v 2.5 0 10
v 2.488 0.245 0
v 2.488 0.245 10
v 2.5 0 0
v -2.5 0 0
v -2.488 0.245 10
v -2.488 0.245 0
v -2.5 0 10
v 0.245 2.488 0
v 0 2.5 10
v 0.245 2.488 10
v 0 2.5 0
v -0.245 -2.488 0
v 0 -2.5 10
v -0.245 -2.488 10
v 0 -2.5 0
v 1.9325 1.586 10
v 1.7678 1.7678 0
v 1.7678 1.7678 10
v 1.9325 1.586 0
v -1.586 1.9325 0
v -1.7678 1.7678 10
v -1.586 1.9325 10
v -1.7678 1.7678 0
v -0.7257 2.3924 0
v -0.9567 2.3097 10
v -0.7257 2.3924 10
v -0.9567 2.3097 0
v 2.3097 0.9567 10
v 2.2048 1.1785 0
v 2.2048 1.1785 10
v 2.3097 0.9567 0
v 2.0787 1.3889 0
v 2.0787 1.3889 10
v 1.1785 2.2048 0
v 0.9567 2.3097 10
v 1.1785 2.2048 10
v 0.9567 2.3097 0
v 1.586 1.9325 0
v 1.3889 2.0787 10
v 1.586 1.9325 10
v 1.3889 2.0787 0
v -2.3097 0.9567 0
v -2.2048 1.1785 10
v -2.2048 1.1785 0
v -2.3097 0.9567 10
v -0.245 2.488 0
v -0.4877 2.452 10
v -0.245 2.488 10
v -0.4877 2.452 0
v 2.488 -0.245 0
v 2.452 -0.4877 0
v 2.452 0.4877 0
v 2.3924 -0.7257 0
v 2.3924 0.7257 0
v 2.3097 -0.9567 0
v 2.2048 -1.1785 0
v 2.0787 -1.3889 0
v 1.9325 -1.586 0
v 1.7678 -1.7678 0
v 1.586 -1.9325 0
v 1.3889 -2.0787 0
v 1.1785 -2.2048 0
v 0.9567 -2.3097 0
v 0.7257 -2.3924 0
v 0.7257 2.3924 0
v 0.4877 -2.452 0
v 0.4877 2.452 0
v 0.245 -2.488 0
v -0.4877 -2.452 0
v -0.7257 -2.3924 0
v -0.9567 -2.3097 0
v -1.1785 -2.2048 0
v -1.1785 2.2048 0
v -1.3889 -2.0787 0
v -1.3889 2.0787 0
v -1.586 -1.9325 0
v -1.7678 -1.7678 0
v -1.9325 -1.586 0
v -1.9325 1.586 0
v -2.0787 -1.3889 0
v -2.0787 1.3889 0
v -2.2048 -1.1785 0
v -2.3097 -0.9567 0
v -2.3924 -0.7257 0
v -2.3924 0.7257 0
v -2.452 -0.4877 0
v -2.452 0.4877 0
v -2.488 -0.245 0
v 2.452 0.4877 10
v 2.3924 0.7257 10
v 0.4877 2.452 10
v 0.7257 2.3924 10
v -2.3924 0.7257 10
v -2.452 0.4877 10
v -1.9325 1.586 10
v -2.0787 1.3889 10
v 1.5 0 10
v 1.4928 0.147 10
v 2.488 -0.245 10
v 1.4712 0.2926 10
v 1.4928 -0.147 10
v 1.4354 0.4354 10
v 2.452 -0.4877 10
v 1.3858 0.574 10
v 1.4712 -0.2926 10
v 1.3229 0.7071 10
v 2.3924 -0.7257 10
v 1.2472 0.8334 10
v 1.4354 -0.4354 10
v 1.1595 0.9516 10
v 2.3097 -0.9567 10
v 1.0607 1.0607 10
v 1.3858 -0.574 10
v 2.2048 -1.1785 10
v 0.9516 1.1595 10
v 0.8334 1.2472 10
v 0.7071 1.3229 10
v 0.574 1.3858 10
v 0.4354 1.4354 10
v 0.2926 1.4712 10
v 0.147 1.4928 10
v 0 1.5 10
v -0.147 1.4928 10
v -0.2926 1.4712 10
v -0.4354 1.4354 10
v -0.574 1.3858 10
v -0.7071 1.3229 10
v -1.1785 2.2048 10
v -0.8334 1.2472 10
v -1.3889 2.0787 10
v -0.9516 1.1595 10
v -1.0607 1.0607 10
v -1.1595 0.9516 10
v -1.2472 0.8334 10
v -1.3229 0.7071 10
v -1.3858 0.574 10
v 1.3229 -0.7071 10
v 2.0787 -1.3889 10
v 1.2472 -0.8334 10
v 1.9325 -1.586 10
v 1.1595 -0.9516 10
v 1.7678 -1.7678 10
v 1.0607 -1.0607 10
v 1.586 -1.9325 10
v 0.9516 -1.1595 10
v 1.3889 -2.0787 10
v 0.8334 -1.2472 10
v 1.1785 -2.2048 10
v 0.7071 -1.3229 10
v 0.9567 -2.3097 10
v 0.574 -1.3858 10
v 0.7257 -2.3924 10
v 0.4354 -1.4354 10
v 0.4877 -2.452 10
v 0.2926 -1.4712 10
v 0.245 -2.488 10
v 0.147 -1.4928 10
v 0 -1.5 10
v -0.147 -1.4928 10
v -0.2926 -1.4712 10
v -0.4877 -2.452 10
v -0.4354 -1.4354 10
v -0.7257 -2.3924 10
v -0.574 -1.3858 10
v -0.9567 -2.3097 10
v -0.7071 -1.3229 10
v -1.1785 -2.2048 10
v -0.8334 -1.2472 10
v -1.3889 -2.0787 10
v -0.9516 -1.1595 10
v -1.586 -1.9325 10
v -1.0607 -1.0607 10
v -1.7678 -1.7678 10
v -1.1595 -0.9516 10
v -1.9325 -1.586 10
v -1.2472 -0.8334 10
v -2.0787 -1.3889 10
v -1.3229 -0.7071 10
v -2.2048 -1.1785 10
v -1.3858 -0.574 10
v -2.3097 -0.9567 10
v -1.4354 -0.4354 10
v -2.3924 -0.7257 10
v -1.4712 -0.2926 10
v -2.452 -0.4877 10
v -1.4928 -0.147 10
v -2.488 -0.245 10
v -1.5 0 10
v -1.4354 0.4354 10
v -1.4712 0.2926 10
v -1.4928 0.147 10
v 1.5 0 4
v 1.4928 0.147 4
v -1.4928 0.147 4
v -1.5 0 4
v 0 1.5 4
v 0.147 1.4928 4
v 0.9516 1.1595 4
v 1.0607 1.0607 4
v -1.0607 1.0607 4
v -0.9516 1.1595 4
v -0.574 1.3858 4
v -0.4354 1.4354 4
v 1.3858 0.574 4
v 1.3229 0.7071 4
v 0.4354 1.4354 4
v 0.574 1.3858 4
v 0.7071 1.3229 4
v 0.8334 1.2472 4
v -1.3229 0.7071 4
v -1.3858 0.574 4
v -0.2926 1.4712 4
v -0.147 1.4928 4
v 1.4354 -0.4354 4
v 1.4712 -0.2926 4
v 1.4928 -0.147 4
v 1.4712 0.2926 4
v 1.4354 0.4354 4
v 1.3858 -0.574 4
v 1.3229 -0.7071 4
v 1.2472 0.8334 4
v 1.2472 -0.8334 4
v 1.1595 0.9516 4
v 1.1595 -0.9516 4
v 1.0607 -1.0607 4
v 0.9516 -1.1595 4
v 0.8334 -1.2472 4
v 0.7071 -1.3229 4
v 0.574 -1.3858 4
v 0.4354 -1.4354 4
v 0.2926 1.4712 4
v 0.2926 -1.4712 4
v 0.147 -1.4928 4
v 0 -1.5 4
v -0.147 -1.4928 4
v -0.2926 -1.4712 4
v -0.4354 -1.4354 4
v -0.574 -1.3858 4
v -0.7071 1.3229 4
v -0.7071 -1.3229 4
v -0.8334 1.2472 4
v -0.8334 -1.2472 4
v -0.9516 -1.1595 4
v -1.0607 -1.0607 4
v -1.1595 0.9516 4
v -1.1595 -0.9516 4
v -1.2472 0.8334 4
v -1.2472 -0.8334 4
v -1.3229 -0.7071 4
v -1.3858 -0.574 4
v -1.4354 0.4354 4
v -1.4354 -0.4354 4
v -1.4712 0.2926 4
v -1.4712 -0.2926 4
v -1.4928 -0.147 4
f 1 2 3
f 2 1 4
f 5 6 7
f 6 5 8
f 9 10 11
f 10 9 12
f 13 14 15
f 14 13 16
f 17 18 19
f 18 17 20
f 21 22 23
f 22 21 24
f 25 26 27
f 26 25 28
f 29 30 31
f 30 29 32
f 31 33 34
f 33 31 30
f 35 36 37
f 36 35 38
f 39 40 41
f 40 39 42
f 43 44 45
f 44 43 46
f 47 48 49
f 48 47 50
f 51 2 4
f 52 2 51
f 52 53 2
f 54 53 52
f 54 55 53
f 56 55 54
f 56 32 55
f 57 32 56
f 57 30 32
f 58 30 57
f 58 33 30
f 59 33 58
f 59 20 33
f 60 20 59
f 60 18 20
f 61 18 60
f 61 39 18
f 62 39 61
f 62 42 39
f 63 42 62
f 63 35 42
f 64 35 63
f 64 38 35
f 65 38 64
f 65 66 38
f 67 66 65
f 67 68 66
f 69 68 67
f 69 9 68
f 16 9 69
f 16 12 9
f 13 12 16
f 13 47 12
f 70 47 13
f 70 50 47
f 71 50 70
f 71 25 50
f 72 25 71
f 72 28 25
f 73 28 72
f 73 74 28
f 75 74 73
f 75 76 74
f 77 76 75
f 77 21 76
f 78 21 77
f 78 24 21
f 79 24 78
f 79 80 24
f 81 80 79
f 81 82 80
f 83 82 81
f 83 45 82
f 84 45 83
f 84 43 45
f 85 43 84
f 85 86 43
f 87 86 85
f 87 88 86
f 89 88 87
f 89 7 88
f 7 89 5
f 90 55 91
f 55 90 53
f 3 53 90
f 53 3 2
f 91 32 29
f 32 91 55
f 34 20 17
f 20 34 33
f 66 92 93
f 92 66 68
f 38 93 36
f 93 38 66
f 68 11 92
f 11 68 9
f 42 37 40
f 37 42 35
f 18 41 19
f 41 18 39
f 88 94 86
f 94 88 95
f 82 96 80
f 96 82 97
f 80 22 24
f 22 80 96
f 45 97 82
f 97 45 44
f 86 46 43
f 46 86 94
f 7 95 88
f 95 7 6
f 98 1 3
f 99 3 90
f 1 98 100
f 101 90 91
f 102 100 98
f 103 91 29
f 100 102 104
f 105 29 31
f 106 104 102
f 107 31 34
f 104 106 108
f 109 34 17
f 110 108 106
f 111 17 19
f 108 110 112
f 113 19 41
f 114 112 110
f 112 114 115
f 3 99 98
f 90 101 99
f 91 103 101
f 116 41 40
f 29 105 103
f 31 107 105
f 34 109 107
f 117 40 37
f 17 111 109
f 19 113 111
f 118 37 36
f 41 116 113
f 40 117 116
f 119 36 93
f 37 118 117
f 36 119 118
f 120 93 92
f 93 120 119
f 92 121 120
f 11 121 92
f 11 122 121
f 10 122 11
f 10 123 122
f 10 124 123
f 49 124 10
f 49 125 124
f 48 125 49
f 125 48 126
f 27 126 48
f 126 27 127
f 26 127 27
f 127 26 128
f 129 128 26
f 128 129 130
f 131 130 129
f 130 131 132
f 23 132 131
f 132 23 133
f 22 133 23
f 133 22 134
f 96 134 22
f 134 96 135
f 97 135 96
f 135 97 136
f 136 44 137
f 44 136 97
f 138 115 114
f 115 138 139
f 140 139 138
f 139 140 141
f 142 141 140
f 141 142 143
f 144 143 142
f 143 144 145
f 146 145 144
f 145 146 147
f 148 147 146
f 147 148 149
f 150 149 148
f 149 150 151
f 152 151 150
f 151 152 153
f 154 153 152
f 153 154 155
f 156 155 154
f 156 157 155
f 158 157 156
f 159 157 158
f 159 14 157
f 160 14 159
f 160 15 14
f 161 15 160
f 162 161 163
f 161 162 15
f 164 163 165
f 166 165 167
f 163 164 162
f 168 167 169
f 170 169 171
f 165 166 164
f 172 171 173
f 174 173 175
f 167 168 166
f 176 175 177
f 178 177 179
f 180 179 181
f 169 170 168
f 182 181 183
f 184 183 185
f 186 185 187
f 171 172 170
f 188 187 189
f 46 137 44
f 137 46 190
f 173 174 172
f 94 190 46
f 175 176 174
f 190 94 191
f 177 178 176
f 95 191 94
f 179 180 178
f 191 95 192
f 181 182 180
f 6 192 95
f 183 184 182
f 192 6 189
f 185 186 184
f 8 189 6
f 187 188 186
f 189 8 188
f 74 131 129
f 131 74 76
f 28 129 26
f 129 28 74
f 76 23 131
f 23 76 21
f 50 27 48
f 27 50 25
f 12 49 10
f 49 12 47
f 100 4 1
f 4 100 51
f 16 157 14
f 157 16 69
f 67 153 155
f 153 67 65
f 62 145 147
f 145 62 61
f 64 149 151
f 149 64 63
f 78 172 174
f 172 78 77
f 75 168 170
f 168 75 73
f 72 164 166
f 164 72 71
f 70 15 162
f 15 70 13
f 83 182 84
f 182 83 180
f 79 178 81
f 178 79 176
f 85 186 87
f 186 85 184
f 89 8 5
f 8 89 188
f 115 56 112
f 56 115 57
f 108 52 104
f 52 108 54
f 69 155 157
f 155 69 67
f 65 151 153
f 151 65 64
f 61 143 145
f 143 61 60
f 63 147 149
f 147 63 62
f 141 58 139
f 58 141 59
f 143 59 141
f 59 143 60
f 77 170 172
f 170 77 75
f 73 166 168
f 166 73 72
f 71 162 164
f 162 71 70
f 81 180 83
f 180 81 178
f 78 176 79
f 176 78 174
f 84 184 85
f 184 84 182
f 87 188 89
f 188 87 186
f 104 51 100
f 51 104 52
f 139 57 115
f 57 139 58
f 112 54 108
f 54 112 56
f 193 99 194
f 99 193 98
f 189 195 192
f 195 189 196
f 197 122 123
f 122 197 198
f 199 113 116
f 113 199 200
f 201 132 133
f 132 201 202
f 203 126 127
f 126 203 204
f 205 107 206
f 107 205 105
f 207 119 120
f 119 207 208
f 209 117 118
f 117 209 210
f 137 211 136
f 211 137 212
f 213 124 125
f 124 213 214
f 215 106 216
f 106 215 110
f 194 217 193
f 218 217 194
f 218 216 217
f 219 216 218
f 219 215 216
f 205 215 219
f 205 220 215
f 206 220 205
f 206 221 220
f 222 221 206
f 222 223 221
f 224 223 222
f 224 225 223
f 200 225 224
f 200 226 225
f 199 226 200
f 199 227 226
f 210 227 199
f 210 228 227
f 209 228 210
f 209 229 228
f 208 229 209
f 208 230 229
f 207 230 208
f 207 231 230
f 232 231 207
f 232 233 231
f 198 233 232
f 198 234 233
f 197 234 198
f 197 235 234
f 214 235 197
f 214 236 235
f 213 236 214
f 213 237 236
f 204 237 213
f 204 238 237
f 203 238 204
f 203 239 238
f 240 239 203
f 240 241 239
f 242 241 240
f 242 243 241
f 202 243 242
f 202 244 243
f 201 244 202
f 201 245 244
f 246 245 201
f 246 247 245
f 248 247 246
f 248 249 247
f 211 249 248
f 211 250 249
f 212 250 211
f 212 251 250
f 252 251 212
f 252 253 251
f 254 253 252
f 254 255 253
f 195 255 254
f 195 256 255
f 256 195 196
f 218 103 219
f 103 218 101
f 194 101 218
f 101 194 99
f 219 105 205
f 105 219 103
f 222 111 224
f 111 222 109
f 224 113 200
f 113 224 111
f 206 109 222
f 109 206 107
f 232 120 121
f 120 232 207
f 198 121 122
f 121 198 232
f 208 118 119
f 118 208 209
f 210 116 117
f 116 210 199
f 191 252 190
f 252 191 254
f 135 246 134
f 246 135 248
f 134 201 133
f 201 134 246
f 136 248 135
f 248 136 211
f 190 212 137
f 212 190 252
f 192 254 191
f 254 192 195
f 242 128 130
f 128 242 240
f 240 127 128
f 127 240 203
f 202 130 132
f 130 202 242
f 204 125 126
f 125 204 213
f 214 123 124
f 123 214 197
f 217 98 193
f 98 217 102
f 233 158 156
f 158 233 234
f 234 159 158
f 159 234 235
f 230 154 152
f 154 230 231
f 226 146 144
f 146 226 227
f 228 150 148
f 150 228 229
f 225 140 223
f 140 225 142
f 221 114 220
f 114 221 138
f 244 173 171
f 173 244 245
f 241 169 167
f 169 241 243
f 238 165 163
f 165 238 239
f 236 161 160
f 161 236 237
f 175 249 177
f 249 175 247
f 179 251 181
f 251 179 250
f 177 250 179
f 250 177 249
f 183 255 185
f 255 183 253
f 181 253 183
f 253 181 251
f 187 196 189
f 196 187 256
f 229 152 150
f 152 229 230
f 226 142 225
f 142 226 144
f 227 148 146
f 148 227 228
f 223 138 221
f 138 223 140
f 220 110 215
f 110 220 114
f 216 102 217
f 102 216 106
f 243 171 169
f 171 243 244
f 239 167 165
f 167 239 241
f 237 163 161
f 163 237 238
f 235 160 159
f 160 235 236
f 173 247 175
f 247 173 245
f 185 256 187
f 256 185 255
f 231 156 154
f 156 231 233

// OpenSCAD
bolt_radius = 2.5;
bolt_height = 10;

head_radius = bolt_radius*1.4;
//head_height = head_radius / 1.4; 
head_height = 2;

$fn = 64;

module bolt() {
    difference () {
        cylinder(h=bolt_height, r=bolt_radius);
        translate([0, 0, 4])
            cylinder(h=bolt_height, r=bolt_radius-1);
    }
}

bolt();

% difference () {
    translate([0, 0, bolt_height/2+head_height])
    cylinder(h=bolt_height/2+head_height, r=bolt_radius);
    
    bolt();
    % bolt();
}
